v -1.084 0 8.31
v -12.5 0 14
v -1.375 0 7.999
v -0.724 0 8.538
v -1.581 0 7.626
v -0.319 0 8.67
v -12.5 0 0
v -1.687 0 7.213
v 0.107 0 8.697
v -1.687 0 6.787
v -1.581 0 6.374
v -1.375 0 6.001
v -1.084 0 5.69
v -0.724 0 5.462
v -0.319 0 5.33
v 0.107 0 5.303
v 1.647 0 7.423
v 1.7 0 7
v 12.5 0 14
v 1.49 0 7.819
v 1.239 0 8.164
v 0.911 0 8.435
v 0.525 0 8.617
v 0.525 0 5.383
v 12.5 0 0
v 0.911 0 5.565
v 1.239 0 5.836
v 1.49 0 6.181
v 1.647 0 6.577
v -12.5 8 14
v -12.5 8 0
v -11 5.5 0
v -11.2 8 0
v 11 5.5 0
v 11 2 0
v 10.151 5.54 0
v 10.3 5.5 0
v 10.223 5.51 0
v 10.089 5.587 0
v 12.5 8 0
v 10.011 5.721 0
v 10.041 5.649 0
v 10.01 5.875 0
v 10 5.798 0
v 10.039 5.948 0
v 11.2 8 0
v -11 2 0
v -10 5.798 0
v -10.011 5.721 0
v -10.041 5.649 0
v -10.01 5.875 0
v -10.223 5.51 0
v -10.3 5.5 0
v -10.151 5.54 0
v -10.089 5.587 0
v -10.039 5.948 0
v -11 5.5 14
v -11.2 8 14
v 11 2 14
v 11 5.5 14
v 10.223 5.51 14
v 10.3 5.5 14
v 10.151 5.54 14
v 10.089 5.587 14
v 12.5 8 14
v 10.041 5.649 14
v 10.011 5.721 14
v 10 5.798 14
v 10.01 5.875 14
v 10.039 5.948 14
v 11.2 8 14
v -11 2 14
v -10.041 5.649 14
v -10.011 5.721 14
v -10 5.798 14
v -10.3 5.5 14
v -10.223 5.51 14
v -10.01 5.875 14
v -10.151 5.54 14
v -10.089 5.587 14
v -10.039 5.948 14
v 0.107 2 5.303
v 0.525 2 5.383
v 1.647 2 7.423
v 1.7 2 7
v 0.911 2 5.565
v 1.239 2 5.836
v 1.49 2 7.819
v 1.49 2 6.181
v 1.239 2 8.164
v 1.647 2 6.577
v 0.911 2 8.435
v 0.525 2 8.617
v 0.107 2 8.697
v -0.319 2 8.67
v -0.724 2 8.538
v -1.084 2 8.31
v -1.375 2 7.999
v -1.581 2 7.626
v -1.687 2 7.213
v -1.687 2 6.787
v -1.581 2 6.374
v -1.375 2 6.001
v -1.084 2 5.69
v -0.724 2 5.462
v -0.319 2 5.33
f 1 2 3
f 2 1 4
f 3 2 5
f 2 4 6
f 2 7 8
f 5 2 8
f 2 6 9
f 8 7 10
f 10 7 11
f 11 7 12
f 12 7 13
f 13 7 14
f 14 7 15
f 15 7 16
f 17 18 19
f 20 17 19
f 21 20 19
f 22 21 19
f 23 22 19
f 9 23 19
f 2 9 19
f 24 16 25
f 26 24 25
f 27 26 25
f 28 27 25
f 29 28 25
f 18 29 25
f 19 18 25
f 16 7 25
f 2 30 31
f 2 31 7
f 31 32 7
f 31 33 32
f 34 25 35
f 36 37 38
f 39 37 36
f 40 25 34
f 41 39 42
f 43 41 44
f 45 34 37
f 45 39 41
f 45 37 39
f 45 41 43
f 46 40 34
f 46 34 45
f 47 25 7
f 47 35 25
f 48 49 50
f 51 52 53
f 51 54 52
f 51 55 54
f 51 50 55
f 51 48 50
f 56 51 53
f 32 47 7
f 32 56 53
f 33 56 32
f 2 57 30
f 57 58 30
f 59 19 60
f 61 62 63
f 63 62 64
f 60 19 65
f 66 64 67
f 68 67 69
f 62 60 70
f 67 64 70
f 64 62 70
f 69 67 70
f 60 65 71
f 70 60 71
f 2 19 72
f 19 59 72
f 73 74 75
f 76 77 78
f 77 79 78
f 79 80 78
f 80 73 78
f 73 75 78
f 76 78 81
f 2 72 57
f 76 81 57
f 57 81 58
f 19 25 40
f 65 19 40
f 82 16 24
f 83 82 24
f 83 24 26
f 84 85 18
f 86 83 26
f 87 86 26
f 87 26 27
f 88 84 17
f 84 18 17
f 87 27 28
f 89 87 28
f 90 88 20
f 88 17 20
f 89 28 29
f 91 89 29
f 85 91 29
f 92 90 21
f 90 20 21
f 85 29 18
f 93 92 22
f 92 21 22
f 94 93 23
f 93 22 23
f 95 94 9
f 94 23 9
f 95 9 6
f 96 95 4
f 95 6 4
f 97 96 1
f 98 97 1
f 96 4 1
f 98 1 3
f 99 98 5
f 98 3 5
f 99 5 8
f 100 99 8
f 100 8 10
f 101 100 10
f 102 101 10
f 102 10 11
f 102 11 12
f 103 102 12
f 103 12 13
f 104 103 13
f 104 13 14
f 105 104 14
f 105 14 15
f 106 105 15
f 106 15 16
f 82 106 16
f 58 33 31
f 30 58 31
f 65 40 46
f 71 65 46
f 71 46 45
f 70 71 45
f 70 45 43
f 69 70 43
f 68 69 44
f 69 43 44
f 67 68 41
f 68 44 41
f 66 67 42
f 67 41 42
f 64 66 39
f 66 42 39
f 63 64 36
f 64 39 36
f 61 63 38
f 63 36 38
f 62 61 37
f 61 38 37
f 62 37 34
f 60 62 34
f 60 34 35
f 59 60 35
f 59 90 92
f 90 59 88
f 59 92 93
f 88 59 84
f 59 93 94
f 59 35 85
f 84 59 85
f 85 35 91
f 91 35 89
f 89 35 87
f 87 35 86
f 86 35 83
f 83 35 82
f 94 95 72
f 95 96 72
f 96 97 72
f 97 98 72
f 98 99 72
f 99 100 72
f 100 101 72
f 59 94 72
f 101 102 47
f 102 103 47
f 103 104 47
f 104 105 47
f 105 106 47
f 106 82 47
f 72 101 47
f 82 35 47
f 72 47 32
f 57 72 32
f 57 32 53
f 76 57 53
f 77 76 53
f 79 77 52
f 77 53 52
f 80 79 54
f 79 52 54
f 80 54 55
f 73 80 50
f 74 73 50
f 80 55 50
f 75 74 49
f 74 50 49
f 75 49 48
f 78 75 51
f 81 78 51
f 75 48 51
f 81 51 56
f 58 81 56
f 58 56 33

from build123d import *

# Parameters (mm, degrees)
PAD_DEPTH    = 14
SKETCH001_R  = 1.7
POCKET_DEPTH = 8.001


with BuildPart() as part:
    # Sketch → Pad (new body)
    with BuildSketch(Plane.XY):
        with BuildLine():
            Line((-12.5, 0), (12.5, 0))
            Line((12.5, 0), (12.5, 8))
            Line((12.5, 8), (11.2, 8))
            Line((11.2, 8), (10.038893, 5.947726))
            ThreePointArc((10.038893, 5.947726), (10.04085, 5.648867), (10.3, 5.5))
            Line((10.3, 5.5), (11, 5.5))
            Line((11, 5.5), (11, 2))
            Line((11, 2), (-11, 2))
            Line((-11, 2), (-11, 5.5))
            Line((-11, 5.5), (-10.3, 5.5))
            ThreePointArc((-10.3, 5.5), (-10.04085, 5.648867), (-10.038893, 5.947726))
            Line((-10.038893, 5.947726), (-11.2, 8))
            Line((-11.2, 8), (-12.5, 8))
            Line((-12.5, 8), (-12.5, 0))
        make_face()
    extrude(amount=PAD_DEPTH)

    # Sketch001 → Pocket (cut, through all)
    with BuildSketch(Plane.XZ):
        with Locations((0, 7)):
            Circle(SKETCH001_R)
    extrude(amount=-POCKET_DEPTH, mode=Mode.SUBTRACT)


solid = part.part
